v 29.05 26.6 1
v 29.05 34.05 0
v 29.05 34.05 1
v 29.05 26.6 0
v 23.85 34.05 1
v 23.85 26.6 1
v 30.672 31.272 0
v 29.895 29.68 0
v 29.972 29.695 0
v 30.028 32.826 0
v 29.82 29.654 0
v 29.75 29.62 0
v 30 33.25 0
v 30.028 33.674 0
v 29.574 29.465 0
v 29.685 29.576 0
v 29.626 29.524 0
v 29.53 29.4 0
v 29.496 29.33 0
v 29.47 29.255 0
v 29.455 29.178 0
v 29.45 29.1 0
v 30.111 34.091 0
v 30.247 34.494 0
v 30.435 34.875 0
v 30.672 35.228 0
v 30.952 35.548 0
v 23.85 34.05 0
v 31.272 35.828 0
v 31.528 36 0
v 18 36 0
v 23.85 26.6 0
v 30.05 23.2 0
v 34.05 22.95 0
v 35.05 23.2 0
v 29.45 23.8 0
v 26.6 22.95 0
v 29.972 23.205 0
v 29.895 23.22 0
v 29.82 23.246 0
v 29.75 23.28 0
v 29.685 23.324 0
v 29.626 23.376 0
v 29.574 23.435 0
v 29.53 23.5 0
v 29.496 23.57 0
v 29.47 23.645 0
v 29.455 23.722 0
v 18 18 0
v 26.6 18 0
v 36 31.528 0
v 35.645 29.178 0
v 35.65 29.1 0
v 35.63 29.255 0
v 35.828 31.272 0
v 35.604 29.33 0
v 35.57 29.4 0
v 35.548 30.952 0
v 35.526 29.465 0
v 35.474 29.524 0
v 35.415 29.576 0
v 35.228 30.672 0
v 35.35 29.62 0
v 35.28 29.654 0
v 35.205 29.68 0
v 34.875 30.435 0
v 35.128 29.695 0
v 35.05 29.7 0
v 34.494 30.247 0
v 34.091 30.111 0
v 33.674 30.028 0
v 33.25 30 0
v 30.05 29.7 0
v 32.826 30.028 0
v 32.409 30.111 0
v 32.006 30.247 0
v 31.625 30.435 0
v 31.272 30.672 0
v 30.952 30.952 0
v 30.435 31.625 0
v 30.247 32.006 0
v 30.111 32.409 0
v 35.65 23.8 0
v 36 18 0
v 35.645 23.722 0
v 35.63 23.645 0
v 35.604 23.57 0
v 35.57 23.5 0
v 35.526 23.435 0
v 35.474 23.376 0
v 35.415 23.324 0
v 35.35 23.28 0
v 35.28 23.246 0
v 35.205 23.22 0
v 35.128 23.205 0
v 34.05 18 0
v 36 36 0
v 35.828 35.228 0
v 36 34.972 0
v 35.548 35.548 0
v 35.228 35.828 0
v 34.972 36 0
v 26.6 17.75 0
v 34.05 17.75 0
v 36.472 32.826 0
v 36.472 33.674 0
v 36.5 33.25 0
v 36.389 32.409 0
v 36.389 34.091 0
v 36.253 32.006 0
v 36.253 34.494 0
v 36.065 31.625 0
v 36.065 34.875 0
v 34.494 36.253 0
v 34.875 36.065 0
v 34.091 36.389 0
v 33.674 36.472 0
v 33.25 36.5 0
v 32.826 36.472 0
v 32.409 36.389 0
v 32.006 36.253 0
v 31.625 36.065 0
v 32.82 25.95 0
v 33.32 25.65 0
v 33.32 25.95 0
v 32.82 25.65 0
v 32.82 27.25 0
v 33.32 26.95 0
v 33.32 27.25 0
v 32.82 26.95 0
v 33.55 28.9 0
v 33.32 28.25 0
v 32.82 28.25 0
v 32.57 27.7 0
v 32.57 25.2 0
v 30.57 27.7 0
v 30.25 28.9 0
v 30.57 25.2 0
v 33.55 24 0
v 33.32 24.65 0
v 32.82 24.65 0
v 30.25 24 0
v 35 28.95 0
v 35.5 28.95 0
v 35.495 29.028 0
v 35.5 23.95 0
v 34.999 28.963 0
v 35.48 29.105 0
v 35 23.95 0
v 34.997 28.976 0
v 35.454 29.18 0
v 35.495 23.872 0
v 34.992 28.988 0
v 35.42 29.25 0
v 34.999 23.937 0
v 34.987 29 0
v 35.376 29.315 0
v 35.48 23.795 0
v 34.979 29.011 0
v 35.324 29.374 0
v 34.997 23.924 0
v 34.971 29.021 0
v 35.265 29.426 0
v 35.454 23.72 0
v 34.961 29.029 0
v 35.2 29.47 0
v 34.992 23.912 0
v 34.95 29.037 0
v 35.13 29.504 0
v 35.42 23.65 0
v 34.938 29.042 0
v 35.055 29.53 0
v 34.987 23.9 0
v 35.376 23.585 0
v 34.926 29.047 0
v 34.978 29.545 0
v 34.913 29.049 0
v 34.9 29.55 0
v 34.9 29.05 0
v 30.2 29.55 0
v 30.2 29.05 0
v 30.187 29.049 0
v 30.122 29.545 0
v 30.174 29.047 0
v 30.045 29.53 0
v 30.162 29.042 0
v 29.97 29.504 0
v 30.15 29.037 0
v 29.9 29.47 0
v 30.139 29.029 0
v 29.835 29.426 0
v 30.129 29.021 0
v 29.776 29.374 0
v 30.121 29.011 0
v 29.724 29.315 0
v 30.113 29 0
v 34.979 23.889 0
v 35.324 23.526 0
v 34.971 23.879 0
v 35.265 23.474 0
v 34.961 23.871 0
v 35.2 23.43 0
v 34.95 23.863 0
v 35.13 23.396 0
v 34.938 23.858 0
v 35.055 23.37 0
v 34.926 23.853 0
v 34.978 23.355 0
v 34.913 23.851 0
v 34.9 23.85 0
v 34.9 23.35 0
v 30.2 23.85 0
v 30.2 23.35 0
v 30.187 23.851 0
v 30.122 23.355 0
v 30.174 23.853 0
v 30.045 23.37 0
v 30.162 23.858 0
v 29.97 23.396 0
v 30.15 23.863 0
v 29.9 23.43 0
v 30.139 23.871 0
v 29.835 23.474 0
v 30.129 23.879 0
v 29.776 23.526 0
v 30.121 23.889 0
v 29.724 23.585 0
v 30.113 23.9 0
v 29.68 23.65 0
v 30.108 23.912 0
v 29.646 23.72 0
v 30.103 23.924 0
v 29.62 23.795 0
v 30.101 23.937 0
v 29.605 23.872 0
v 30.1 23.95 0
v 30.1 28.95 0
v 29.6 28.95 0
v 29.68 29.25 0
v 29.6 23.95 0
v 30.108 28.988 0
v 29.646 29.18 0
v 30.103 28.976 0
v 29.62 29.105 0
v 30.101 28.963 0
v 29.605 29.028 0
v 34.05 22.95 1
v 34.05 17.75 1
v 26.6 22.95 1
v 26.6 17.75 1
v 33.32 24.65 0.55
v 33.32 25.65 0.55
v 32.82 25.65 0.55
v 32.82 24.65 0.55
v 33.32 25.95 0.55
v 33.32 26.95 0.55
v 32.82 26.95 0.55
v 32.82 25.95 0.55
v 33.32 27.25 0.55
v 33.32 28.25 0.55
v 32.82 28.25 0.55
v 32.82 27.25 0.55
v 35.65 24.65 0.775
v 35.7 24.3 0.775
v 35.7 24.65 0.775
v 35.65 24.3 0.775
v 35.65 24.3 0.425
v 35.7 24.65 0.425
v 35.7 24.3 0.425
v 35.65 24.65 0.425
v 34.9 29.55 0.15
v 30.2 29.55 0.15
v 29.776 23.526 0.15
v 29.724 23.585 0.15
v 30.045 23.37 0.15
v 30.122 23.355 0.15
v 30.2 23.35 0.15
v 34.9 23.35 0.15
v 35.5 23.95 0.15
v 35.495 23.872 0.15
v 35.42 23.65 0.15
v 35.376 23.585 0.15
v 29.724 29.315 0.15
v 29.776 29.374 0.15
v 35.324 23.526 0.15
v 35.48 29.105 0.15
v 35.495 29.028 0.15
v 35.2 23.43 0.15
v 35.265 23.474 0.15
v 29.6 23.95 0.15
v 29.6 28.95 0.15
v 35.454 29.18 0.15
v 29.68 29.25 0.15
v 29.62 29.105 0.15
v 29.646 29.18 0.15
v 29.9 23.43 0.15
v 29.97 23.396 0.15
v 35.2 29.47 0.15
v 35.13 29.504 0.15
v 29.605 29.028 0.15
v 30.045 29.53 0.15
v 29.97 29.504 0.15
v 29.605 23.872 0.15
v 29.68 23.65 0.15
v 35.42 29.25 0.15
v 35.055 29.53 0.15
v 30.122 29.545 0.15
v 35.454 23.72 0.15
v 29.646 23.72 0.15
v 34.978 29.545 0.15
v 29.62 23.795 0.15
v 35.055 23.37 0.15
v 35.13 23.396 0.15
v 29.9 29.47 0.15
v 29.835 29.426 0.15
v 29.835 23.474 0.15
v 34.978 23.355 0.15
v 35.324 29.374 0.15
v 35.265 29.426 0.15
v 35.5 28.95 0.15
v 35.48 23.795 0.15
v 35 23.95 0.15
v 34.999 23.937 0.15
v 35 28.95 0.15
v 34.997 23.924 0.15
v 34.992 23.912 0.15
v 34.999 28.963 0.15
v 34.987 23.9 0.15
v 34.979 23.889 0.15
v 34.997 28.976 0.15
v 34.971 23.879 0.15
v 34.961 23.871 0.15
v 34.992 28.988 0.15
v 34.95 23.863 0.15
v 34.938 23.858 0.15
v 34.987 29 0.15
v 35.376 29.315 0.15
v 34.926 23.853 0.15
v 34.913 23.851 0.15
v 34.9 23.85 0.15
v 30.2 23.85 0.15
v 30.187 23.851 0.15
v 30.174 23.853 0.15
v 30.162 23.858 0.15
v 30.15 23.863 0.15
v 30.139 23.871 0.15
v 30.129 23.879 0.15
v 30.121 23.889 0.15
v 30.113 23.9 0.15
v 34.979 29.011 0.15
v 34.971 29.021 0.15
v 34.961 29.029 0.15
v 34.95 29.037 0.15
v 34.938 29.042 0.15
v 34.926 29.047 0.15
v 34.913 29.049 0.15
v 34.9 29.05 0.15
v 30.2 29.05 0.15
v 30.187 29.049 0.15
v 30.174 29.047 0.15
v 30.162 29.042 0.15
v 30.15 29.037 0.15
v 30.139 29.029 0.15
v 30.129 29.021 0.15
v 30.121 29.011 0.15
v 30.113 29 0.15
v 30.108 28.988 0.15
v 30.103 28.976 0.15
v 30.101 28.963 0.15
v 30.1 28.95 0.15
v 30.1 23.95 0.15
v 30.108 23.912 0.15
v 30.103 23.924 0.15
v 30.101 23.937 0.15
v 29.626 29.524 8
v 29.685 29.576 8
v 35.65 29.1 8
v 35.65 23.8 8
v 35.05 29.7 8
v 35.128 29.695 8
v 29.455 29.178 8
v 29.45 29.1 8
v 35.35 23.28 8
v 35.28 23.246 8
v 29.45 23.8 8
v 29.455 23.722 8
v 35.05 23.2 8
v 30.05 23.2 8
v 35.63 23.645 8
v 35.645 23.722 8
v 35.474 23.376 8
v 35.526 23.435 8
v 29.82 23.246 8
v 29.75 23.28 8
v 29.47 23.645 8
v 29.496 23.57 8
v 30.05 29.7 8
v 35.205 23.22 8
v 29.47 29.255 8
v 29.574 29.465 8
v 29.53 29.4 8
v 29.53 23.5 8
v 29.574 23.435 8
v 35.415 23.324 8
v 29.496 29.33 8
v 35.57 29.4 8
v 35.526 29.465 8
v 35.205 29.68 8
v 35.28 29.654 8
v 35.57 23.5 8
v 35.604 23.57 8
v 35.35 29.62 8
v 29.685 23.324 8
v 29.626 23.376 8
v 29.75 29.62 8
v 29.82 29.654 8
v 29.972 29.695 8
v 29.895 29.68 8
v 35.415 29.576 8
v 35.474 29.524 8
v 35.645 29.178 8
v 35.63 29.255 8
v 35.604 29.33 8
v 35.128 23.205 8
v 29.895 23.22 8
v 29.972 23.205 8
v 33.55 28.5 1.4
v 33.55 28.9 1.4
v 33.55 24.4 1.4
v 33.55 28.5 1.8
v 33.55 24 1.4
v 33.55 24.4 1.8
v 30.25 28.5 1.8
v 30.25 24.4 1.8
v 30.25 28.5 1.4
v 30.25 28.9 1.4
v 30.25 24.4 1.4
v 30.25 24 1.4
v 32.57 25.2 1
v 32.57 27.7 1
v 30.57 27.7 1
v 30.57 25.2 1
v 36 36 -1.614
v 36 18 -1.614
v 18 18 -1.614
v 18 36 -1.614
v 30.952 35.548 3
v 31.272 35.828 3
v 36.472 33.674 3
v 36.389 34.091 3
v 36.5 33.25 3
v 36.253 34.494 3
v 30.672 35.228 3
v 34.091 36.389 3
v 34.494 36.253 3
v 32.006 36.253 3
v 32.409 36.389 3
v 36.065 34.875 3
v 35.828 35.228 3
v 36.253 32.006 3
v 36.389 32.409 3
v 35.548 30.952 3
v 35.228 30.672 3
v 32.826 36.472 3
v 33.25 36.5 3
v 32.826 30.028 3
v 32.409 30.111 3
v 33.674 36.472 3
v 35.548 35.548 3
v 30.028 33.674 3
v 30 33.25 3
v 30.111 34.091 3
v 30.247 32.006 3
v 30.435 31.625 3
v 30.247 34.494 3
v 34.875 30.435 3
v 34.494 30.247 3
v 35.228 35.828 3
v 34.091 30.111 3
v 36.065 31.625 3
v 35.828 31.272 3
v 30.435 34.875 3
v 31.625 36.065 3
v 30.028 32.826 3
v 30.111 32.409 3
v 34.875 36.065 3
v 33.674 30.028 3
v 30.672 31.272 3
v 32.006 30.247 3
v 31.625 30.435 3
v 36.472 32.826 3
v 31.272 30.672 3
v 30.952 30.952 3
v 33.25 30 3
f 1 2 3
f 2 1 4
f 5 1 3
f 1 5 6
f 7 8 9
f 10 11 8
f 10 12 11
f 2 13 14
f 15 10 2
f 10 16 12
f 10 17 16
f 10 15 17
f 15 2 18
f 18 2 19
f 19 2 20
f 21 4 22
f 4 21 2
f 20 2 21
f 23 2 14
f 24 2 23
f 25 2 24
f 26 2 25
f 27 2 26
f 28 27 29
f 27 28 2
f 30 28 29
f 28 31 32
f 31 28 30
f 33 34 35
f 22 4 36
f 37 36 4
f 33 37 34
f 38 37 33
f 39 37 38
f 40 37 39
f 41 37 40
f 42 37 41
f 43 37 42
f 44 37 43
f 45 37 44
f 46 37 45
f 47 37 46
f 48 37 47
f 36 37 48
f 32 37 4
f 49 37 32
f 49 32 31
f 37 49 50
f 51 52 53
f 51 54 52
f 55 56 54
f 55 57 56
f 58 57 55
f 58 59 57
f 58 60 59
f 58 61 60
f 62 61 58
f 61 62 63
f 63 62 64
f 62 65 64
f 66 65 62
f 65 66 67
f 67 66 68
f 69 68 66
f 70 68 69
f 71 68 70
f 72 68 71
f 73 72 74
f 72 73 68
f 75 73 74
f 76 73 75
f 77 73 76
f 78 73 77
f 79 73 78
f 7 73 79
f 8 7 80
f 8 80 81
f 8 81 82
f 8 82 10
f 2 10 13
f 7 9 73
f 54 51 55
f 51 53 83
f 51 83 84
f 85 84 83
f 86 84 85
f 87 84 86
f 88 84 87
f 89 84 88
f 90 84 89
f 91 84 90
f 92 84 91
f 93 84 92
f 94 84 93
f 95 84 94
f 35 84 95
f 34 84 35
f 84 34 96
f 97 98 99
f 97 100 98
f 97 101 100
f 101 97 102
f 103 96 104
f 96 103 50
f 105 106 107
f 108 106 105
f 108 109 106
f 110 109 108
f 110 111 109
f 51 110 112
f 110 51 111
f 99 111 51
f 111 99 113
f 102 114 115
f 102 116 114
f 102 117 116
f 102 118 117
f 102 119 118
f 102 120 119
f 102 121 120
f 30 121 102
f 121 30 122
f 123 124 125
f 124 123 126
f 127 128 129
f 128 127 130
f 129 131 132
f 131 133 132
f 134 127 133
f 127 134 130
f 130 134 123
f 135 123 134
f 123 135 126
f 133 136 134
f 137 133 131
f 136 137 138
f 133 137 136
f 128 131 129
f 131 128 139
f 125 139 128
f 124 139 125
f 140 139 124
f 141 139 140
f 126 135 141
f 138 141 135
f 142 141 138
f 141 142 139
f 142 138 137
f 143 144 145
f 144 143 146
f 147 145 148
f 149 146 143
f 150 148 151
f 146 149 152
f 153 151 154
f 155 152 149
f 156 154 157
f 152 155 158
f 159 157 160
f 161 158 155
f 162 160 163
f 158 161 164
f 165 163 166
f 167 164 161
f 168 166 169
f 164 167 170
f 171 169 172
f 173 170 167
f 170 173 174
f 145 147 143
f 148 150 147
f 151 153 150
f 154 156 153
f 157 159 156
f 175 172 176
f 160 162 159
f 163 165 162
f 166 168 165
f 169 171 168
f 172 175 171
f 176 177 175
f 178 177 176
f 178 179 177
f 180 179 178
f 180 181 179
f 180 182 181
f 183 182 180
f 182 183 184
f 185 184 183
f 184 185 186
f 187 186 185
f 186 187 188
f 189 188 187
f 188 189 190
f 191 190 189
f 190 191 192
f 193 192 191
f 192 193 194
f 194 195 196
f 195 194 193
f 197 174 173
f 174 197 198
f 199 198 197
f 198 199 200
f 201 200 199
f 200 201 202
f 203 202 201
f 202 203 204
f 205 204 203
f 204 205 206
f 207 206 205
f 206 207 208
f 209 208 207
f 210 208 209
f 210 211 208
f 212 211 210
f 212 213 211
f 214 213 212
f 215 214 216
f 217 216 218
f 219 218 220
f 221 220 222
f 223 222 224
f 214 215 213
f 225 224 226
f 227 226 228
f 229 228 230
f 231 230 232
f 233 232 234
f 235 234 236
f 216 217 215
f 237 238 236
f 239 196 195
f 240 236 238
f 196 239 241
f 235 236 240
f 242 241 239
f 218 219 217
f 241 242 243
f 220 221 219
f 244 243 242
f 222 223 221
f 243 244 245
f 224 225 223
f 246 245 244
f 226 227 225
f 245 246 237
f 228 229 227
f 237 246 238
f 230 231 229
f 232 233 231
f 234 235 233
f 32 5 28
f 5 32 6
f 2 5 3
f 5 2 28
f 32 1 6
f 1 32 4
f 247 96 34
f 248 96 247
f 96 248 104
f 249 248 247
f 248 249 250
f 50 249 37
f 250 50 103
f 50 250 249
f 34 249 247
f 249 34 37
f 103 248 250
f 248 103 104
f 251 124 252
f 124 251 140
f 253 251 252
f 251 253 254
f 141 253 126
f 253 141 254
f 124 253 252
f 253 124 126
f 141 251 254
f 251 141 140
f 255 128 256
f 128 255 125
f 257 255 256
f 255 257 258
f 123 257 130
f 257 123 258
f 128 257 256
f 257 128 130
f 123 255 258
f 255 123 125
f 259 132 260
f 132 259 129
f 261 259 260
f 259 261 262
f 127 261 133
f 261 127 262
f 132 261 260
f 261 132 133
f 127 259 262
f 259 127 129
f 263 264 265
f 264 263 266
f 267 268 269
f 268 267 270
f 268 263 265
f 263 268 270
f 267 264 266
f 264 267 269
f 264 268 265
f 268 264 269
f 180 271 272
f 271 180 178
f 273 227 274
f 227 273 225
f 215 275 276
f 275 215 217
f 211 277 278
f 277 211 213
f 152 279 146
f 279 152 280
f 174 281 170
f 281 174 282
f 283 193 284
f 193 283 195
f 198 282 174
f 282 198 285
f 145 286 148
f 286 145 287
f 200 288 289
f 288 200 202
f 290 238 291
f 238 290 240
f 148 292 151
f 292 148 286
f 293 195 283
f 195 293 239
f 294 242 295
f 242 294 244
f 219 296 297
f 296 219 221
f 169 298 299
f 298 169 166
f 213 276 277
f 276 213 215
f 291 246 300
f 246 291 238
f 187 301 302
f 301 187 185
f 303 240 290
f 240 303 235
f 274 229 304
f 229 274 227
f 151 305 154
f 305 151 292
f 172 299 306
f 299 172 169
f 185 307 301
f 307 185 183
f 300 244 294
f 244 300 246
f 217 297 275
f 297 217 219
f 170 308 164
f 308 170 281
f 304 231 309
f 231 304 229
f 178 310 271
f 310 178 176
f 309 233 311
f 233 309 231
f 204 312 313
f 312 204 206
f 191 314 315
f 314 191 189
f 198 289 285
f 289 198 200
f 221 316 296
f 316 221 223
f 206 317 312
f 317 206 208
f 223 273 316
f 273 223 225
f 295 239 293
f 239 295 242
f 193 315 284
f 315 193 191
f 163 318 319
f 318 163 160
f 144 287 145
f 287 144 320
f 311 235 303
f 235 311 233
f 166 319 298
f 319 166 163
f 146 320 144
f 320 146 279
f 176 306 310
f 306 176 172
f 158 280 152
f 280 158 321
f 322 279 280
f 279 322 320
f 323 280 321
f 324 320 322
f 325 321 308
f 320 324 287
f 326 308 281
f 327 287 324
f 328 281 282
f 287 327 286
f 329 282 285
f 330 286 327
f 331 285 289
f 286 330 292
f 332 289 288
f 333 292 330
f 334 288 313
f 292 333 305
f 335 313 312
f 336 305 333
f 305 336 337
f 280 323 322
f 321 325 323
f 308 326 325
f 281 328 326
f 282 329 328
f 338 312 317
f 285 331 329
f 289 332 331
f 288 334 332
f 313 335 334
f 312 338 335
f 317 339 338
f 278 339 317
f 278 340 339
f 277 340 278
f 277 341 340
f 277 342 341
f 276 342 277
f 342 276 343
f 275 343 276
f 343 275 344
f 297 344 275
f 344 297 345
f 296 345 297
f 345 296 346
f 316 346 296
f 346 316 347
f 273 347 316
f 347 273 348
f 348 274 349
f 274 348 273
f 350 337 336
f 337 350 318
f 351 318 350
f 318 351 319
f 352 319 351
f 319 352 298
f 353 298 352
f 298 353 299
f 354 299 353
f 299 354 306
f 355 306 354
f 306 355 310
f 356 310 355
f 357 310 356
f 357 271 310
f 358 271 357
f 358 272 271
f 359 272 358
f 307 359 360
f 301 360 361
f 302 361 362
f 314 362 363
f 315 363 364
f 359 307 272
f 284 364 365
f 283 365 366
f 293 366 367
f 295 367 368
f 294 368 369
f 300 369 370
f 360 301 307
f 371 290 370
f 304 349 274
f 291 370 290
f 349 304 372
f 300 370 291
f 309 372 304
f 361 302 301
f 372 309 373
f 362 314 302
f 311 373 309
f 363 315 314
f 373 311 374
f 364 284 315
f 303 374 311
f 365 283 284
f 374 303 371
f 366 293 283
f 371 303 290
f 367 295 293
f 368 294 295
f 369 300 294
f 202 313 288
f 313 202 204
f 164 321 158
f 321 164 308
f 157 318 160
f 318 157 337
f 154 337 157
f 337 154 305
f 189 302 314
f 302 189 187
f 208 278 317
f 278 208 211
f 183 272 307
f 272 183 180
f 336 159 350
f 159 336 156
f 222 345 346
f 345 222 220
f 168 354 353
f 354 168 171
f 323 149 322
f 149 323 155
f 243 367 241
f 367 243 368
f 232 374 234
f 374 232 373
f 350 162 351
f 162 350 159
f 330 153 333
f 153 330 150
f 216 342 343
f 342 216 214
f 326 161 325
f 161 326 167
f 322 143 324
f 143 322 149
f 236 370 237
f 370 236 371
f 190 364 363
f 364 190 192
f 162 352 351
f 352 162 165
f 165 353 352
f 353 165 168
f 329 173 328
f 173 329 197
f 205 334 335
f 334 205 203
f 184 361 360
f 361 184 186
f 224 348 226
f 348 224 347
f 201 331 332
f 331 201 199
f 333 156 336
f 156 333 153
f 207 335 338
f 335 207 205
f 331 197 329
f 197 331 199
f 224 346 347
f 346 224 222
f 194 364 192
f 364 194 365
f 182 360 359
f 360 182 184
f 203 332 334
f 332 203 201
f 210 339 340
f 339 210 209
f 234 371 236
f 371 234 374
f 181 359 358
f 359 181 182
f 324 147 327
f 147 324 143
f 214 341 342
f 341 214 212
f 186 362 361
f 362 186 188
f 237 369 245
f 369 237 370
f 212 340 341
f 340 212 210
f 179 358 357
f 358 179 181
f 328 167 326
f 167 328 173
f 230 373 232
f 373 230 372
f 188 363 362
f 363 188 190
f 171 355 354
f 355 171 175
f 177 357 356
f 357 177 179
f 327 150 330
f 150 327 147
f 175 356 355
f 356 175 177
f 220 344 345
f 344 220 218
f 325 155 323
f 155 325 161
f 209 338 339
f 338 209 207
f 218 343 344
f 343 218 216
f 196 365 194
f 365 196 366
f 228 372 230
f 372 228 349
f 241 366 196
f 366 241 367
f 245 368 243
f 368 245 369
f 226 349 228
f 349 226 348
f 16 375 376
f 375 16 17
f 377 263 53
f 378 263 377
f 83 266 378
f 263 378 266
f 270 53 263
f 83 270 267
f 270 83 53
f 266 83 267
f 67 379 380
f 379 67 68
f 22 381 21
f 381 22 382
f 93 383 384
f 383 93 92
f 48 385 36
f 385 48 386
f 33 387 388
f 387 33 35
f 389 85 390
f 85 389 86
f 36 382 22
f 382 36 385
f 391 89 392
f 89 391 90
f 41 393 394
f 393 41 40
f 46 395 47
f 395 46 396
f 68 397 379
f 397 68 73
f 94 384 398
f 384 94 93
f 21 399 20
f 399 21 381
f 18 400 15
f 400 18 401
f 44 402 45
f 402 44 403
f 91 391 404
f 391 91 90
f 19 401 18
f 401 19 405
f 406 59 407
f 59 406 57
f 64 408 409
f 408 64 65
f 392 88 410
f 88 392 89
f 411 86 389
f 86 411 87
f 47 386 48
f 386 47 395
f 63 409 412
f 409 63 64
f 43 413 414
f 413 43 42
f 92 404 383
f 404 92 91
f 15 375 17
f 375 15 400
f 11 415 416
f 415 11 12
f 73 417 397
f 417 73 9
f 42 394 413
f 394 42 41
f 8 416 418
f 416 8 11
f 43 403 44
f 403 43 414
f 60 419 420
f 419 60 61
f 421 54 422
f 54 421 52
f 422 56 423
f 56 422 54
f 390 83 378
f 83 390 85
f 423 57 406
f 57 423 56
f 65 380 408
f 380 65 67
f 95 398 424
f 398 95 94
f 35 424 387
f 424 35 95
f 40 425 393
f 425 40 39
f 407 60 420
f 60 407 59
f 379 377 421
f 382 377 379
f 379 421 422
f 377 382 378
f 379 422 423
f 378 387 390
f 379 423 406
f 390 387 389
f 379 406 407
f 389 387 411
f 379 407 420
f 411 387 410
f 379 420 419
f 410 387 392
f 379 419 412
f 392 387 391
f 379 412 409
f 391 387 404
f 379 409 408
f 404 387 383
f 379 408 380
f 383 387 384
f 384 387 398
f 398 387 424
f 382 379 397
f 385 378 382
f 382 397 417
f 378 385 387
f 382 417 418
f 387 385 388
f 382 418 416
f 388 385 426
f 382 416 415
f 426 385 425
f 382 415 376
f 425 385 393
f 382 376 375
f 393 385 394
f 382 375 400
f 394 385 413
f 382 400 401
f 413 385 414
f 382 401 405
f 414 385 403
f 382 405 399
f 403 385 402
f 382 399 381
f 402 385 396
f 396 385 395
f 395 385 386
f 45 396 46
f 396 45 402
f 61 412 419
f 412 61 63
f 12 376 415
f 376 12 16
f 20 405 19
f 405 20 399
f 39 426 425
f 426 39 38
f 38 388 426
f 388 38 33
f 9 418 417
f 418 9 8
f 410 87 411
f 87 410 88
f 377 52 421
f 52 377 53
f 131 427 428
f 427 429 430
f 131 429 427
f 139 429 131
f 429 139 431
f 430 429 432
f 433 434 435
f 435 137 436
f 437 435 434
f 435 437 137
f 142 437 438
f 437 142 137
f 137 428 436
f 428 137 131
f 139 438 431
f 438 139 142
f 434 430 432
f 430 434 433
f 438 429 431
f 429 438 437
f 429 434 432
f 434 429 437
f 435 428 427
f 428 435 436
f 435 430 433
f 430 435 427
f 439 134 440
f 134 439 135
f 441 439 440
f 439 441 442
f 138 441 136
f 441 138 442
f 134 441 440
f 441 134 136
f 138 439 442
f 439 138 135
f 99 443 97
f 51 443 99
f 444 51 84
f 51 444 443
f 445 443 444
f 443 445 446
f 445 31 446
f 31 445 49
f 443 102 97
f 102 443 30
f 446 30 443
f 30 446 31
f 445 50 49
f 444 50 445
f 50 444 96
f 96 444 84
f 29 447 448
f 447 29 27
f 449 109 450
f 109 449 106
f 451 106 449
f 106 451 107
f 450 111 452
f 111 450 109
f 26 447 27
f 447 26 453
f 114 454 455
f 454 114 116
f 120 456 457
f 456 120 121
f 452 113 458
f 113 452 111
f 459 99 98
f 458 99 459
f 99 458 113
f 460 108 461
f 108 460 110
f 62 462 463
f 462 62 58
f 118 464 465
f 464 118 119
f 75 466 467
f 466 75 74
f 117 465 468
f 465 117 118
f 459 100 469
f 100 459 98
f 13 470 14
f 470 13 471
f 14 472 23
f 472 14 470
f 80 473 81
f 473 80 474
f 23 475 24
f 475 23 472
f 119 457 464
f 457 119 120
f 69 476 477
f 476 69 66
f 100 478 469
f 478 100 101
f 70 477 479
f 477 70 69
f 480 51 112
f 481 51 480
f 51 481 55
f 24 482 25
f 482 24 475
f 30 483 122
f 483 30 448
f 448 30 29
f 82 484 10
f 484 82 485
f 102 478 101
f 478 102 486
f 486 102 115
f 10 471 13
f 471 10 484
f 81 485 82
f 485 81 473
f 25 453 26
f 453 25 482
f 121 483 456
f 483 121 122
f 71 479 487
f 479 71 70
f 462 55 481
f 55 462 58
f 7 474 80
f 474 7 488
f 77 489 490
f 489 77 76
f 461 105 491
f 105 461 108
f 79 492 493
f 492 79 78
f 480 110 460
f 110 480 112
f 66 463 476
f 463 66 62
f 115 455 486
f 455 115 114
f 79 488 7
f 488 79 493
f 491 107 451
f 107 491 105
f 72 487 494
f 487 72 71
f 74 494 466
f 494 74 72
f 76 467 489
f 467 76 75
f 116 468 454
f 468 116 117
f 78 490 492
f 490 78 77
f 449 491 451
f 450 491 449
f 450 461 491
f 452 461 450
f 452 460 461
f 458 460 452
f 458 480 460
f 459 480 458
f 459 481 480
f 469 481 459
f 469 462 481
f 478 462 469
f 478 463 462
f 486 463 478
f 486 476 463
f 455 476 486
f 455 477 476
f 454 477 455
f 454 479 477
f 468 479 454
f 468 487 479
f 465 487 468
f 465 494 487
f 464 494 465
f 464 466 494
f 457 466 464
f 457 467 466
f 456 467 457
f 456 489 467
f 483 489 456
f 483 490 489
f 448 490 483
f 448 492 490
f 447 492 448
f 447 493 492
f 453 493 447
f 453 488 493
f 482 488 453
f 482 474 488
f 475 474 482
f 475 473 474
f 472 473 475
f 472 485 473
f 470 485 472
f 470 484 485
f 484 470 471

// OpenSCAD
// Nano H743 AIO - DPS310 (U4) barometer foam chamber / shroud cap   (Revision 12)
//
// Single source of truth for the baro chamber geometry.  analysis/baro_acoustic_analysis.py
// parses the top-level "name = expr;" assignments below (do not move them into modules,
// keep one assignment per line) and evaluates them; derived values are computed there
// from these same expressions, so no number is duplicated.
//
// Frames
//   KiCad board frame : x right, y DOWN, origin at board top-left corner (kicad_pcb).
//   SCAD world frame  : X = kicad x, Y = board_size - kicad y (Y up/north), Z = 0 on the
//                       PCB TOP copper/mask surface, +Z away from the board.
//   Cap local frame   : origin at the cap footprint centre on the PCB, +X east (toward the
//                       board edge x = 36), +Y north.  The vent wall is the EAST wall.
//
// Parts (select with -D 'part="..."'):
//   "cap"        printed shroud (SLA high-temperature resin, see notes), bonded to the PCB
//   "foam_block" pre-cut foam block (cut template, free state, i.e. before compression)
//   "air"        chamber air volume (cavity minus U4 body/passives/ledges) - analysis only
//   "vent_air"   vent labyrinth air volume - analysis only
//   "assembly"   preview: board corner, MOSFET courtyards, grommet keep-out, U4, cap, foam
//
// Material / process notes
//   Cap: SLA high-temperature resin (HDT @0.45 MPa >= 120 C, e.g. Formlabs High Temp or
//        Loctite 3D 3955) because the adjacent Q11 high-side FET runs ~87-110 C at rating
//        and the 0.35 mm vent labyrinth is below MJF/FDM resolution.  Not TPU95A: FDM cannot
//        hold a 0.35 mm closed channel, and TPU creeps at board temperature.
//        The cap must be OPAQUE (black-pigmented resin, or the translucent amber High Temp
//        resin painted matt black after the hydrophobic dip): with the 0.8 mm air gap the
//        U4 lid port sees the cavity walls directly (light shielding, see analysis).
//        Post-process: IPA flush of the labyrinth (syringe), UV cure, hydrophobic
//        fluoropolymer dip (contact angle > 100 deg) so water is REPELLED from the channel.
//   Bond: continuous bead of neutral-cure (alkoxy) RTV or UV acrylic on the foot.  NO acetoxy
//        RTV (acetic acid outgassing attacks the DPS310).  The bead must be leak-free: any
//        leak is a parallel vent that bypasses the labyrinth (see analysis).
//   Foam: open-cell polyether PU, black (carbon-black, opaque), 45 PPI, 28 kg/m^3,
//        flow resistivity ~4 kPa*s/m^2 (swept 2..8 kPa*s/m^2 in the analysis).

/* [Selection] */
part = "assembly";          // "cap" | "foam_block" | "air" | "vent_air" | "assembly"
$fn = 48;                   // facets for round features (grommet / holes)

/* [Board, from tools/gen_power_stage_pcb.py / kicad_pcb] */
board_size = 36.0;          // mm, square outline
board_t = 1.614;            // mm, JLC061612-1080 stackup
mount_pitch = 30.5;         // mm, M3 hole pattern
grommet_keepout_r = 3.25;   // mm, MountingHole_3.2mm_M3_Grommet_Keepout courtyard radius
stack_clear = 0.25;         // mm, extra radial clearance cap <-> grommet/standoff/nut
stack_free_h = 8.5;         // mm, integration spec: free height above PCB top to the next stack board
stack_clear_z = 0.5;        // mm, vertical clearance cap roof <-> next board (vibration / grommet sag)

/* [Neighbouring top-side courtyards, from kicad_pcb (KiCad frame, centre + size)] */
q4_cx_k = 26.45;            // mm, Q4 courtyard centre (N edge)
q4_cy_k = 5.675;
q4_w = 5.2;                 // mm, courtyard X extent
q4_l = 7.45;                // mm, courtyard Y extent
q11_cx_k = 30.325;          // mm, Q11 courtyard centre (E edge, high-side FET next to the cap)
q11_cy_k = 15.65;
q11_w = 7.45;
q11_l = 5.2;
court_h = 1.0;              // mm, preview height of the courtyard blocks
court_clear = 0.2;          // mm, min cap-to-courtyard gap (bond bead squeeze-out)

/* [U4 site (reservation - the PCB currently holds only the power stage)] */
cap_cx_k = 32.55;           // mm, cap footprint centre, KiCad x  (NE corner, top face F.Cu)
cap_cy_k = 9.55;            // mm, cap footprint centre, KiCad y
u4_dx = -0.98;              // mm, U4 centre offset from cap centre, local +X (east)
u4_dy = 0.0;                // mm, U4 centre offset from cap centre, local +Y (north)

/* [DPS310 U4, Infineon LGA-8 2.0 x 2.5 x 1.0] */
u4_w = 2.0;                 // mm, package X
u4_l = 2.5;                 // mm, package Y
u4_h = 1.0;                 // mm, package height (lid with vent hole on top)
pass_w = 0.5;               // mm, 0402 passive X extent (rotated: long axis along Y)
pass_l = 1.0;               // mm, 0402 passive Y extent (C24/C25/C26 inside the chamber)
pass_h = 0.55;              // mm, 0402 passive height (max)
n_pass = 3;                 // count of 0402 decoupling caps inside the chamber

/* [Cap shell] */
cap_w = 6.2;                // mm, outer footprint X
cap_l = 6.5;                // mm, outer footprint Y
cap_h = 8.0;                // mm, outer height above PCB top (needs >= 8.5 mm free stack height)
wall_t = 0.8;               // mm, N/S/W wall thickness
vent_wall_t = 2.1;          // mm, east wall thickness (holds the two-plane labyrinth)
roof_t = 0.8;               // mm, roof thickness
corner_r = 0.6;             // mm, outer vertical edge radius
foot_relief_h = 0.15;       // mm, glue-bead relief under the wall (0 = flat foot)

/* [Foam support and sensor air gap] */
air_gap = 0.8;              // mm, clear air between U4 lid and foam underside (foam never touches)
ledge_w = 0.4;              // mm, foam ledge depth from N/S inner walls
ledge_h = 0.4;              // mm, ledge rib height
foam_fit = 0.2;             // mm, foam oversize per side (compression retention), X/Y
foam_fit_z = 0.2;           // mm, foam oversize in Z (compressed by the roof)
foam_ppi = 45;              // pores per inch
foam_density = 28;          // kg/m^3
foam_sigma = 4000;          // Pa*s/m^2 flow resistivity, nominal (analysis sweeps x0.5..x2)
foam_solid_density = 1100;  // kg/m^3 PU polymer (porosity = 1 - density/solid density)

/* [Materials for the analysis] */
resin_hdt = 120;            // C, cap resin heat deflection temperature @ 0.45 MPa (minimum)
coat_theta = 100;           // deg, water contact angle of the fluoropolymer-dipped channel (minimum)

/* [Vent labyrinth: square-channel zig-zag in two interleaved planes inside the east wall] */
// Lane k runs in plane (k % 2) and alternates direction in Y; at each lane end a short
// X crossover joins the two planes.  Consecutive lanes therefore sit in different planes,
// so the vertical web rule applies between lanes k and k+2 (2 * vent_pitch apart).
vent_a = 0.35;              // mm, channel square side (SLA, +-vent_tol)
vent_tol = 0.03;            // mm, channel size tolerance (analysis corner)
vent_lanes = 17;            // number of sloped lanes (odd -> ports at opposite Y ends)
vent_plane_sep = 0.85;      // mm, X distance between the two channel planes (centre-centre)
vent_skin = 0.5;            // mm, min solid skin around channel (to roof / corners / foot)
vent_z_in = 6.8;            // mm, inner port centre height (top of foam region)
vent_z_out = 0.6;           // mm, outer port centre height (lowest point -> self-draining)

/* [Derived - evaluated identically by the analysis] */
cav_x0 = -cap_w / 2 + wall_t;                 // mm, cavity west face (local)
cav_x1 = cap_w / 2 - vent_wall_t;             // mm, cavity east face
cav_y0 = -cap_l / 2 + wall_t;                 // mm
cav_y1 = cap_l / 2 - wall_t;                  // mm
cav_h = cap_h - roof_t;                       // mm, cavity height (PCB to roof)
foam_z0 = u4_h + air_gap;                     // mm, foam underside
foam_t = cav_h - foam_z0;                     // mm, installed foam thickness
vent_xc = cav_x1 + vent_wall_t / 2;           // mm, labyrinth mid-plane X (between the planes)
vent_xa = vent_xc - vent_plane_sep / 2;       // mm, plane A (inner) X
vent_xb = vent_xc + vent_plane_sep / 2;       // mm, plane B (outer) X
vent_y_end = cap_l / 2 - corner_r - vent_skin - vent_a / 2;   // mm, lane end |Y|
vent_pitch = (vent_z_in - vent_z_out) / vent_lanes;           // mm, vertical drop per lane
vent_web = 2 * vent_pitch - vent_a;           // mm, solid web between lanes k, k+2 (same plane)
vent_xweb = vent_plane_sep - vent_a;          // mm, solid web between the two planes
vent_skin_x = vent_xa - vent_a / 2 - cav_x1;  // mm, skin to the cavity face (= outer skin)
vent_lane_len = sqrt(pow(2 * vent_y_end, 2) + pow(vent_pitch, 2));  // mm
vent_slope_deg = atan(vent_pitch / (2 * vent_y_end));        // deg, descent of each lane
vent_stub_in = vent_xa - cav_x1;              // mm, plane A -> cavity face
vent_stub_out = cap_w / 2 - (vent_lanes % 2 == 1 ? vent_xa : vent_xb);   // mm, last plane -> outer face
vent_n_cross = vent_lanes - 1;                // count of X crossovers between lanes
vent_len = vent_lanes * vent_lane_len + vent_n_cross * vent_plane_sep + vent_stub_in + vent_stub_out;   // mm, centreline
u4_x0 = u4_dx - u4_w / 2;                     // mm
u4_x1 = u4_dx + u4_w / 2;                     // mm
cap_x0_k = cap_cx_k - cap_w / 2;              // mm, KiCad footprint extents
cap_x1_k = cap_cx_k + cap_w / 2;
cap_y0_k = cap_cy_k - cap_l / 2;
cap_y1_k = cap_cy_k + cap_l / 2;

/* [Sanity asserts] */
assert(u4_x1 + 0.25 + pass_w <= cav_x1 - 0.2, "0402 column east of U4 must clear the vent wall by 0.2 mm");
assert(cav_y1 - cav_y0 >= u4_l + 1.0, "cavity too short for U4");
assert(u4_x0 >= cav_x0 + 0.3 && u4_x1 <= cav_x1 - 0.3, "U4 must clear the cavity walls by 0.3 mm");
assert(abs(u4_dy) + u4_l / 2 <= cav_y1 - ledge_w - 0.2, "U4 under a ledge");
assert(air_gap >= 0.5, "foam-to-sensor air gap must be >= 0.5 mm");
assert(foam_t >= 3.0, "foam thinner than 3 mm");
assert(vent_web >= 0.35, "labyrinth web between lanes too thin to print");
assert(vent_z_in + vent_a / 2 <= cav_h - 0.2, "inner port must open below the roof");
assert(vent_z_in - vent_a / 2 >= foam_z0 + 0.5, "inner port must open into the foam region");
assert(vent_z_out - vent_a / 2 >= foot_relief_h + 0.2, "outer port too close to the foot");
assert(vent_z_in + vent_a / 2 + vent_skin <= cap_h, "labyrinth breaks through the roof");
assert(vent_lanes % 2 == 1, "use an odd lane count so the ports are at opposite ends");
assert(vent_slope_deg >= 5, "lanes must descend >= 5 deg toward the outer port (drain)");
assert(vent_xweb >= 0.4, "web between labyrinth planes < 0.4 mm");
assert(vent_skin_x >= 0.4, "labyrinth skin to cavity / outside < 0.4 mm");
assert(abs(cap_w / 2 - vent_xb - vent_a / 2 - vent_skin_x) < 1e-6, "labyrinth not centred in the vent wall");
assert(wall_t >= 0.6 && roof_t >= 0.6, "SLA wall minimum 0.6 mm");
assert(cap_x1_k <= board_size - 0.3, "cap overhangs the east board edge");
assert(cap_y0_k >= 0.3, "cap overhangs the north board edge");
// grommet keep-out of the NE hole (KiCad (board-2.75, 2.75)): nearest point of the footprint
hole_k = (board_size - mount_pitch) / 2;      // mm, hole inset from edges (2.75)
assert(sqrt(pow(max(cap_x0_k - (board_size - hole_k), 0, (board_size - hole_k) - cap_x1_k), 2)
          + pow(max(cap_y0_k - hole_k, 0, hole_k - cap_y1_k), 2))
       >= grommet_keepout_r + stack_clear, "cap intrudes into the grommet / standoff keep-out");
assert(cap_x0_k >= q4_cx_k + q4_w / 2 + court_clear || cap_y0_k >= q4_cy_k + q4_l / 2 + court_clear,
       "cap overlaps the Q4 courtyard");
assert(cap_y1_k <= q11_cy_k - q11_l / 2 - court_clear, "cap overlaps the Q11 courtyard");
assert(cap_h + stack_clear_z <= stack_free_h, "cap taller than the free stack height");

echo(str("BAROCAP cav=", cav_x1 - cav_x0, "x", cav_y1 - cav_y0, "x", cav_h,
         " foam_t=", foam_t, " vent_len=", vent_len, " vent_pitch=", vent_pitch,
         " vent_slope_deg=", vent_slope_deg));

// ------------------------------------------------------------------------------------------
module rounded_box(w, l, h, r) {
    hull() for (sx = [-1, 1], sy = [-1, 1])
        translate([sx * (w / 2 - r), sy * (l / 2 - r), 0]) cylinder(r = r, h = h);
}

// labyrinth centreline: lane k goes from vent_pt0(k) to vent_pt1(k) in plane (k % 2),
// descending vent_pitch; lane 0 starts at the inner port end (Y = +vent_y_end, plane A).
function vent_px(k) = (k % 2 == 0) ? vent_xa : vent_xb;
function vent_py(k) = ((k % 2 == 0) ? 1 : -1) * vent_y_end;
function vent_pt0(k) = [vent_px(k), vent_py(k), vent_z_in - k * vent_pitch];
function vent_pt1(k) = [vent_px(k), -vent_py(k), vent_z_in - (k + 1) * vent_pitch];

module seg(p, q, a) {
    // square-section bar of side a from p to q (p, q at the same X)
    d = q - p;
    len = norm(d);
    ang = atan2(d[2], d[1]);
    translate(p) rotate([ang, 0, 0]) translate([-a / 2, 0, -a / 2]) cube([a, len, a]);
    translate(p - [a / 2, a / 2, a / 2]) cube([a, a, a]);   // joint
    translate(q - [a / 2, a / 2, a / 2]) cube([a, a, a]);   // joint
}

module vent_channel(a = vent_a) {
    for (k = [0 : vent_lanes - 1]) {
        seg(vent_pt0(k), vent_pt1(k), a);
        if (k < vent_lanes - 1) {   // X crossover to the next plane at this lane end
            e = vent_pt1(k);
            translate([min(vent_xa, vent_xb) - a / 2, e[1] - a / 2, e[2] - a / 2])
                cube([vent_plane_sep + a, a, a]);
        }
    }
    // inner stub: plane A -> cavity (west face) at the lane-0 start
    p0 = vent_pt0(0);
    translate([cav_x1 - 0.05, p0[1] - a / 2, p0[2] - a / 2]) cube([vent_xa - cav_x1 + 0.05 + a / 2, a, a]);
    // outer stub: last plane -> outside (east face) at the last vertex
    pe = vent_pt1(vent_lanes - 1);
    translate([pe[0] - a / 2, pe[1] - a / 2, pe[2] - a / 2]) cube([cap_w / 2 - pe[0] + a / 2 + 0.05, a, a]);
}

module ledges() {
    for (sy = [-1, 1])
        translate([cav_x0, sy > 0 ? cav_y1 - ledge_w : cav_y0, foam_z0 - ledge_h])
            cube([cav_x1 - cav_x0, ledge_w, ledge_h]);
}

module cavity() {
    translate([cav_x0, cav_y0, -0.01]) cube([cav_x1 - cav_x0, cav_y1 - cav_y0, cav_h + 0.01]);
}

module cap() {
    difference() {
        rounded_box(cap_w, cap_l, cap_h, corner_r);
        cavity();
        vent_channel();
        // glue-bead relief groove along the foot centreline (keeps a bead captive)
        if (foot_relief_h > 0)
            difference() {
                translate([0, 0, -0.01]) rounded_box(cap_w - 0.3, cap_l - 0.3, foot_relief_h + 0.01, corner_r);
                translate([0, 0, -0.02]) rounded_box(cap_w - 2 * wall_t + 0.3, cap_l - 2 * wall_t + 0.3,
                                                     foot_relief_h + 0.03, 0.1);
            }
    }
    ledges();
}

module u4_body() { translate([u4_x0, u4_dy - u4_l / 2, 0]) cube([u4_w, u4_l, u4_h]); }

module passives() {
    // C24/C25/C26 0402 east of U4, stacked in Y
    for (i = [0 : n_pass - 1])
        translate([u4_x1 + 0.25, -(n_pass * pass_l + (n_pass - 1) * 0.3) / 2 + i * (pass_l + 0.3), 0])
            cube([pass_w, pass_l, pass_h]);
}

module foam_block(free_state = true) {
    fx = (cav_x1 - cav_x0) + (free_state ? 2 * foam_fit : 0);
    fy = (cav_y1 - cav_y0) + (free_state ? 2 * foam_fit : 0);
    fz = foam_t + (free_state ? foam_fit_z : 0);
    if (free_state) cube([fx, fy, fz]);
    else translate([cav_x0, cav_y0, foam_z0]) cube([fx, fy, fz]);
}

module air() {
    difference() {
        translate([cav_x0, cav_y0, 0]) cube([cav_x1 - cav_x0, cav_y1 - cav_y0, cav_h]);
        u4_body();
        passives();
        ledges();
    }
}

// world placement of the cap local frame (on the top face)
module at_site() { translate([cap_cx_k, board_size - cap_cy_k, 0]) children(); }

module assembly() {
    // board corner (NE quadrant) below Z = 0
    color("darkgreen", 0.6) translate([18, 18, -board_t]) cube([18, 18, board_t]);
    // NE grommet keep-out
    color("red", 0.3) translate([board_size - (board_size - mount_pitch) / 2, board_size - (board_size - mount_pitch) / 2, 0])
        cylinder(r = grommet_keepout_r, h = 3);
    // Q4 (N edge) and Q11 (E edge) courtyards, top face (from kicad_pcb)
    color("gray", 0.5) {
        translate([q4_cx_k - q4_w / 2, board_size - (q4_cy_k + q4_l / 2), 0]) cube([q4_w, q4_l, court_h]);
        translate([q11_cx_k - q11_w / 2, board_size - (q11_cy_k + q11_l / 2), 0]) cube([q11_w, q11_l, court_h]);
    }
    at_site() {
        color("silver") u4_body();
        color("tan") passives();
        color("dimgray", 0.9) foam_block(false);
        color("white", 0.35) cap();
        color("blue") vent_channel();
    }
}

if (part == "cap") cap();
else if (part == "foam_block") foam_block(true);
else if (part == "air") air();
else if (part == "vent_air") vent_channel();
else assembly();
